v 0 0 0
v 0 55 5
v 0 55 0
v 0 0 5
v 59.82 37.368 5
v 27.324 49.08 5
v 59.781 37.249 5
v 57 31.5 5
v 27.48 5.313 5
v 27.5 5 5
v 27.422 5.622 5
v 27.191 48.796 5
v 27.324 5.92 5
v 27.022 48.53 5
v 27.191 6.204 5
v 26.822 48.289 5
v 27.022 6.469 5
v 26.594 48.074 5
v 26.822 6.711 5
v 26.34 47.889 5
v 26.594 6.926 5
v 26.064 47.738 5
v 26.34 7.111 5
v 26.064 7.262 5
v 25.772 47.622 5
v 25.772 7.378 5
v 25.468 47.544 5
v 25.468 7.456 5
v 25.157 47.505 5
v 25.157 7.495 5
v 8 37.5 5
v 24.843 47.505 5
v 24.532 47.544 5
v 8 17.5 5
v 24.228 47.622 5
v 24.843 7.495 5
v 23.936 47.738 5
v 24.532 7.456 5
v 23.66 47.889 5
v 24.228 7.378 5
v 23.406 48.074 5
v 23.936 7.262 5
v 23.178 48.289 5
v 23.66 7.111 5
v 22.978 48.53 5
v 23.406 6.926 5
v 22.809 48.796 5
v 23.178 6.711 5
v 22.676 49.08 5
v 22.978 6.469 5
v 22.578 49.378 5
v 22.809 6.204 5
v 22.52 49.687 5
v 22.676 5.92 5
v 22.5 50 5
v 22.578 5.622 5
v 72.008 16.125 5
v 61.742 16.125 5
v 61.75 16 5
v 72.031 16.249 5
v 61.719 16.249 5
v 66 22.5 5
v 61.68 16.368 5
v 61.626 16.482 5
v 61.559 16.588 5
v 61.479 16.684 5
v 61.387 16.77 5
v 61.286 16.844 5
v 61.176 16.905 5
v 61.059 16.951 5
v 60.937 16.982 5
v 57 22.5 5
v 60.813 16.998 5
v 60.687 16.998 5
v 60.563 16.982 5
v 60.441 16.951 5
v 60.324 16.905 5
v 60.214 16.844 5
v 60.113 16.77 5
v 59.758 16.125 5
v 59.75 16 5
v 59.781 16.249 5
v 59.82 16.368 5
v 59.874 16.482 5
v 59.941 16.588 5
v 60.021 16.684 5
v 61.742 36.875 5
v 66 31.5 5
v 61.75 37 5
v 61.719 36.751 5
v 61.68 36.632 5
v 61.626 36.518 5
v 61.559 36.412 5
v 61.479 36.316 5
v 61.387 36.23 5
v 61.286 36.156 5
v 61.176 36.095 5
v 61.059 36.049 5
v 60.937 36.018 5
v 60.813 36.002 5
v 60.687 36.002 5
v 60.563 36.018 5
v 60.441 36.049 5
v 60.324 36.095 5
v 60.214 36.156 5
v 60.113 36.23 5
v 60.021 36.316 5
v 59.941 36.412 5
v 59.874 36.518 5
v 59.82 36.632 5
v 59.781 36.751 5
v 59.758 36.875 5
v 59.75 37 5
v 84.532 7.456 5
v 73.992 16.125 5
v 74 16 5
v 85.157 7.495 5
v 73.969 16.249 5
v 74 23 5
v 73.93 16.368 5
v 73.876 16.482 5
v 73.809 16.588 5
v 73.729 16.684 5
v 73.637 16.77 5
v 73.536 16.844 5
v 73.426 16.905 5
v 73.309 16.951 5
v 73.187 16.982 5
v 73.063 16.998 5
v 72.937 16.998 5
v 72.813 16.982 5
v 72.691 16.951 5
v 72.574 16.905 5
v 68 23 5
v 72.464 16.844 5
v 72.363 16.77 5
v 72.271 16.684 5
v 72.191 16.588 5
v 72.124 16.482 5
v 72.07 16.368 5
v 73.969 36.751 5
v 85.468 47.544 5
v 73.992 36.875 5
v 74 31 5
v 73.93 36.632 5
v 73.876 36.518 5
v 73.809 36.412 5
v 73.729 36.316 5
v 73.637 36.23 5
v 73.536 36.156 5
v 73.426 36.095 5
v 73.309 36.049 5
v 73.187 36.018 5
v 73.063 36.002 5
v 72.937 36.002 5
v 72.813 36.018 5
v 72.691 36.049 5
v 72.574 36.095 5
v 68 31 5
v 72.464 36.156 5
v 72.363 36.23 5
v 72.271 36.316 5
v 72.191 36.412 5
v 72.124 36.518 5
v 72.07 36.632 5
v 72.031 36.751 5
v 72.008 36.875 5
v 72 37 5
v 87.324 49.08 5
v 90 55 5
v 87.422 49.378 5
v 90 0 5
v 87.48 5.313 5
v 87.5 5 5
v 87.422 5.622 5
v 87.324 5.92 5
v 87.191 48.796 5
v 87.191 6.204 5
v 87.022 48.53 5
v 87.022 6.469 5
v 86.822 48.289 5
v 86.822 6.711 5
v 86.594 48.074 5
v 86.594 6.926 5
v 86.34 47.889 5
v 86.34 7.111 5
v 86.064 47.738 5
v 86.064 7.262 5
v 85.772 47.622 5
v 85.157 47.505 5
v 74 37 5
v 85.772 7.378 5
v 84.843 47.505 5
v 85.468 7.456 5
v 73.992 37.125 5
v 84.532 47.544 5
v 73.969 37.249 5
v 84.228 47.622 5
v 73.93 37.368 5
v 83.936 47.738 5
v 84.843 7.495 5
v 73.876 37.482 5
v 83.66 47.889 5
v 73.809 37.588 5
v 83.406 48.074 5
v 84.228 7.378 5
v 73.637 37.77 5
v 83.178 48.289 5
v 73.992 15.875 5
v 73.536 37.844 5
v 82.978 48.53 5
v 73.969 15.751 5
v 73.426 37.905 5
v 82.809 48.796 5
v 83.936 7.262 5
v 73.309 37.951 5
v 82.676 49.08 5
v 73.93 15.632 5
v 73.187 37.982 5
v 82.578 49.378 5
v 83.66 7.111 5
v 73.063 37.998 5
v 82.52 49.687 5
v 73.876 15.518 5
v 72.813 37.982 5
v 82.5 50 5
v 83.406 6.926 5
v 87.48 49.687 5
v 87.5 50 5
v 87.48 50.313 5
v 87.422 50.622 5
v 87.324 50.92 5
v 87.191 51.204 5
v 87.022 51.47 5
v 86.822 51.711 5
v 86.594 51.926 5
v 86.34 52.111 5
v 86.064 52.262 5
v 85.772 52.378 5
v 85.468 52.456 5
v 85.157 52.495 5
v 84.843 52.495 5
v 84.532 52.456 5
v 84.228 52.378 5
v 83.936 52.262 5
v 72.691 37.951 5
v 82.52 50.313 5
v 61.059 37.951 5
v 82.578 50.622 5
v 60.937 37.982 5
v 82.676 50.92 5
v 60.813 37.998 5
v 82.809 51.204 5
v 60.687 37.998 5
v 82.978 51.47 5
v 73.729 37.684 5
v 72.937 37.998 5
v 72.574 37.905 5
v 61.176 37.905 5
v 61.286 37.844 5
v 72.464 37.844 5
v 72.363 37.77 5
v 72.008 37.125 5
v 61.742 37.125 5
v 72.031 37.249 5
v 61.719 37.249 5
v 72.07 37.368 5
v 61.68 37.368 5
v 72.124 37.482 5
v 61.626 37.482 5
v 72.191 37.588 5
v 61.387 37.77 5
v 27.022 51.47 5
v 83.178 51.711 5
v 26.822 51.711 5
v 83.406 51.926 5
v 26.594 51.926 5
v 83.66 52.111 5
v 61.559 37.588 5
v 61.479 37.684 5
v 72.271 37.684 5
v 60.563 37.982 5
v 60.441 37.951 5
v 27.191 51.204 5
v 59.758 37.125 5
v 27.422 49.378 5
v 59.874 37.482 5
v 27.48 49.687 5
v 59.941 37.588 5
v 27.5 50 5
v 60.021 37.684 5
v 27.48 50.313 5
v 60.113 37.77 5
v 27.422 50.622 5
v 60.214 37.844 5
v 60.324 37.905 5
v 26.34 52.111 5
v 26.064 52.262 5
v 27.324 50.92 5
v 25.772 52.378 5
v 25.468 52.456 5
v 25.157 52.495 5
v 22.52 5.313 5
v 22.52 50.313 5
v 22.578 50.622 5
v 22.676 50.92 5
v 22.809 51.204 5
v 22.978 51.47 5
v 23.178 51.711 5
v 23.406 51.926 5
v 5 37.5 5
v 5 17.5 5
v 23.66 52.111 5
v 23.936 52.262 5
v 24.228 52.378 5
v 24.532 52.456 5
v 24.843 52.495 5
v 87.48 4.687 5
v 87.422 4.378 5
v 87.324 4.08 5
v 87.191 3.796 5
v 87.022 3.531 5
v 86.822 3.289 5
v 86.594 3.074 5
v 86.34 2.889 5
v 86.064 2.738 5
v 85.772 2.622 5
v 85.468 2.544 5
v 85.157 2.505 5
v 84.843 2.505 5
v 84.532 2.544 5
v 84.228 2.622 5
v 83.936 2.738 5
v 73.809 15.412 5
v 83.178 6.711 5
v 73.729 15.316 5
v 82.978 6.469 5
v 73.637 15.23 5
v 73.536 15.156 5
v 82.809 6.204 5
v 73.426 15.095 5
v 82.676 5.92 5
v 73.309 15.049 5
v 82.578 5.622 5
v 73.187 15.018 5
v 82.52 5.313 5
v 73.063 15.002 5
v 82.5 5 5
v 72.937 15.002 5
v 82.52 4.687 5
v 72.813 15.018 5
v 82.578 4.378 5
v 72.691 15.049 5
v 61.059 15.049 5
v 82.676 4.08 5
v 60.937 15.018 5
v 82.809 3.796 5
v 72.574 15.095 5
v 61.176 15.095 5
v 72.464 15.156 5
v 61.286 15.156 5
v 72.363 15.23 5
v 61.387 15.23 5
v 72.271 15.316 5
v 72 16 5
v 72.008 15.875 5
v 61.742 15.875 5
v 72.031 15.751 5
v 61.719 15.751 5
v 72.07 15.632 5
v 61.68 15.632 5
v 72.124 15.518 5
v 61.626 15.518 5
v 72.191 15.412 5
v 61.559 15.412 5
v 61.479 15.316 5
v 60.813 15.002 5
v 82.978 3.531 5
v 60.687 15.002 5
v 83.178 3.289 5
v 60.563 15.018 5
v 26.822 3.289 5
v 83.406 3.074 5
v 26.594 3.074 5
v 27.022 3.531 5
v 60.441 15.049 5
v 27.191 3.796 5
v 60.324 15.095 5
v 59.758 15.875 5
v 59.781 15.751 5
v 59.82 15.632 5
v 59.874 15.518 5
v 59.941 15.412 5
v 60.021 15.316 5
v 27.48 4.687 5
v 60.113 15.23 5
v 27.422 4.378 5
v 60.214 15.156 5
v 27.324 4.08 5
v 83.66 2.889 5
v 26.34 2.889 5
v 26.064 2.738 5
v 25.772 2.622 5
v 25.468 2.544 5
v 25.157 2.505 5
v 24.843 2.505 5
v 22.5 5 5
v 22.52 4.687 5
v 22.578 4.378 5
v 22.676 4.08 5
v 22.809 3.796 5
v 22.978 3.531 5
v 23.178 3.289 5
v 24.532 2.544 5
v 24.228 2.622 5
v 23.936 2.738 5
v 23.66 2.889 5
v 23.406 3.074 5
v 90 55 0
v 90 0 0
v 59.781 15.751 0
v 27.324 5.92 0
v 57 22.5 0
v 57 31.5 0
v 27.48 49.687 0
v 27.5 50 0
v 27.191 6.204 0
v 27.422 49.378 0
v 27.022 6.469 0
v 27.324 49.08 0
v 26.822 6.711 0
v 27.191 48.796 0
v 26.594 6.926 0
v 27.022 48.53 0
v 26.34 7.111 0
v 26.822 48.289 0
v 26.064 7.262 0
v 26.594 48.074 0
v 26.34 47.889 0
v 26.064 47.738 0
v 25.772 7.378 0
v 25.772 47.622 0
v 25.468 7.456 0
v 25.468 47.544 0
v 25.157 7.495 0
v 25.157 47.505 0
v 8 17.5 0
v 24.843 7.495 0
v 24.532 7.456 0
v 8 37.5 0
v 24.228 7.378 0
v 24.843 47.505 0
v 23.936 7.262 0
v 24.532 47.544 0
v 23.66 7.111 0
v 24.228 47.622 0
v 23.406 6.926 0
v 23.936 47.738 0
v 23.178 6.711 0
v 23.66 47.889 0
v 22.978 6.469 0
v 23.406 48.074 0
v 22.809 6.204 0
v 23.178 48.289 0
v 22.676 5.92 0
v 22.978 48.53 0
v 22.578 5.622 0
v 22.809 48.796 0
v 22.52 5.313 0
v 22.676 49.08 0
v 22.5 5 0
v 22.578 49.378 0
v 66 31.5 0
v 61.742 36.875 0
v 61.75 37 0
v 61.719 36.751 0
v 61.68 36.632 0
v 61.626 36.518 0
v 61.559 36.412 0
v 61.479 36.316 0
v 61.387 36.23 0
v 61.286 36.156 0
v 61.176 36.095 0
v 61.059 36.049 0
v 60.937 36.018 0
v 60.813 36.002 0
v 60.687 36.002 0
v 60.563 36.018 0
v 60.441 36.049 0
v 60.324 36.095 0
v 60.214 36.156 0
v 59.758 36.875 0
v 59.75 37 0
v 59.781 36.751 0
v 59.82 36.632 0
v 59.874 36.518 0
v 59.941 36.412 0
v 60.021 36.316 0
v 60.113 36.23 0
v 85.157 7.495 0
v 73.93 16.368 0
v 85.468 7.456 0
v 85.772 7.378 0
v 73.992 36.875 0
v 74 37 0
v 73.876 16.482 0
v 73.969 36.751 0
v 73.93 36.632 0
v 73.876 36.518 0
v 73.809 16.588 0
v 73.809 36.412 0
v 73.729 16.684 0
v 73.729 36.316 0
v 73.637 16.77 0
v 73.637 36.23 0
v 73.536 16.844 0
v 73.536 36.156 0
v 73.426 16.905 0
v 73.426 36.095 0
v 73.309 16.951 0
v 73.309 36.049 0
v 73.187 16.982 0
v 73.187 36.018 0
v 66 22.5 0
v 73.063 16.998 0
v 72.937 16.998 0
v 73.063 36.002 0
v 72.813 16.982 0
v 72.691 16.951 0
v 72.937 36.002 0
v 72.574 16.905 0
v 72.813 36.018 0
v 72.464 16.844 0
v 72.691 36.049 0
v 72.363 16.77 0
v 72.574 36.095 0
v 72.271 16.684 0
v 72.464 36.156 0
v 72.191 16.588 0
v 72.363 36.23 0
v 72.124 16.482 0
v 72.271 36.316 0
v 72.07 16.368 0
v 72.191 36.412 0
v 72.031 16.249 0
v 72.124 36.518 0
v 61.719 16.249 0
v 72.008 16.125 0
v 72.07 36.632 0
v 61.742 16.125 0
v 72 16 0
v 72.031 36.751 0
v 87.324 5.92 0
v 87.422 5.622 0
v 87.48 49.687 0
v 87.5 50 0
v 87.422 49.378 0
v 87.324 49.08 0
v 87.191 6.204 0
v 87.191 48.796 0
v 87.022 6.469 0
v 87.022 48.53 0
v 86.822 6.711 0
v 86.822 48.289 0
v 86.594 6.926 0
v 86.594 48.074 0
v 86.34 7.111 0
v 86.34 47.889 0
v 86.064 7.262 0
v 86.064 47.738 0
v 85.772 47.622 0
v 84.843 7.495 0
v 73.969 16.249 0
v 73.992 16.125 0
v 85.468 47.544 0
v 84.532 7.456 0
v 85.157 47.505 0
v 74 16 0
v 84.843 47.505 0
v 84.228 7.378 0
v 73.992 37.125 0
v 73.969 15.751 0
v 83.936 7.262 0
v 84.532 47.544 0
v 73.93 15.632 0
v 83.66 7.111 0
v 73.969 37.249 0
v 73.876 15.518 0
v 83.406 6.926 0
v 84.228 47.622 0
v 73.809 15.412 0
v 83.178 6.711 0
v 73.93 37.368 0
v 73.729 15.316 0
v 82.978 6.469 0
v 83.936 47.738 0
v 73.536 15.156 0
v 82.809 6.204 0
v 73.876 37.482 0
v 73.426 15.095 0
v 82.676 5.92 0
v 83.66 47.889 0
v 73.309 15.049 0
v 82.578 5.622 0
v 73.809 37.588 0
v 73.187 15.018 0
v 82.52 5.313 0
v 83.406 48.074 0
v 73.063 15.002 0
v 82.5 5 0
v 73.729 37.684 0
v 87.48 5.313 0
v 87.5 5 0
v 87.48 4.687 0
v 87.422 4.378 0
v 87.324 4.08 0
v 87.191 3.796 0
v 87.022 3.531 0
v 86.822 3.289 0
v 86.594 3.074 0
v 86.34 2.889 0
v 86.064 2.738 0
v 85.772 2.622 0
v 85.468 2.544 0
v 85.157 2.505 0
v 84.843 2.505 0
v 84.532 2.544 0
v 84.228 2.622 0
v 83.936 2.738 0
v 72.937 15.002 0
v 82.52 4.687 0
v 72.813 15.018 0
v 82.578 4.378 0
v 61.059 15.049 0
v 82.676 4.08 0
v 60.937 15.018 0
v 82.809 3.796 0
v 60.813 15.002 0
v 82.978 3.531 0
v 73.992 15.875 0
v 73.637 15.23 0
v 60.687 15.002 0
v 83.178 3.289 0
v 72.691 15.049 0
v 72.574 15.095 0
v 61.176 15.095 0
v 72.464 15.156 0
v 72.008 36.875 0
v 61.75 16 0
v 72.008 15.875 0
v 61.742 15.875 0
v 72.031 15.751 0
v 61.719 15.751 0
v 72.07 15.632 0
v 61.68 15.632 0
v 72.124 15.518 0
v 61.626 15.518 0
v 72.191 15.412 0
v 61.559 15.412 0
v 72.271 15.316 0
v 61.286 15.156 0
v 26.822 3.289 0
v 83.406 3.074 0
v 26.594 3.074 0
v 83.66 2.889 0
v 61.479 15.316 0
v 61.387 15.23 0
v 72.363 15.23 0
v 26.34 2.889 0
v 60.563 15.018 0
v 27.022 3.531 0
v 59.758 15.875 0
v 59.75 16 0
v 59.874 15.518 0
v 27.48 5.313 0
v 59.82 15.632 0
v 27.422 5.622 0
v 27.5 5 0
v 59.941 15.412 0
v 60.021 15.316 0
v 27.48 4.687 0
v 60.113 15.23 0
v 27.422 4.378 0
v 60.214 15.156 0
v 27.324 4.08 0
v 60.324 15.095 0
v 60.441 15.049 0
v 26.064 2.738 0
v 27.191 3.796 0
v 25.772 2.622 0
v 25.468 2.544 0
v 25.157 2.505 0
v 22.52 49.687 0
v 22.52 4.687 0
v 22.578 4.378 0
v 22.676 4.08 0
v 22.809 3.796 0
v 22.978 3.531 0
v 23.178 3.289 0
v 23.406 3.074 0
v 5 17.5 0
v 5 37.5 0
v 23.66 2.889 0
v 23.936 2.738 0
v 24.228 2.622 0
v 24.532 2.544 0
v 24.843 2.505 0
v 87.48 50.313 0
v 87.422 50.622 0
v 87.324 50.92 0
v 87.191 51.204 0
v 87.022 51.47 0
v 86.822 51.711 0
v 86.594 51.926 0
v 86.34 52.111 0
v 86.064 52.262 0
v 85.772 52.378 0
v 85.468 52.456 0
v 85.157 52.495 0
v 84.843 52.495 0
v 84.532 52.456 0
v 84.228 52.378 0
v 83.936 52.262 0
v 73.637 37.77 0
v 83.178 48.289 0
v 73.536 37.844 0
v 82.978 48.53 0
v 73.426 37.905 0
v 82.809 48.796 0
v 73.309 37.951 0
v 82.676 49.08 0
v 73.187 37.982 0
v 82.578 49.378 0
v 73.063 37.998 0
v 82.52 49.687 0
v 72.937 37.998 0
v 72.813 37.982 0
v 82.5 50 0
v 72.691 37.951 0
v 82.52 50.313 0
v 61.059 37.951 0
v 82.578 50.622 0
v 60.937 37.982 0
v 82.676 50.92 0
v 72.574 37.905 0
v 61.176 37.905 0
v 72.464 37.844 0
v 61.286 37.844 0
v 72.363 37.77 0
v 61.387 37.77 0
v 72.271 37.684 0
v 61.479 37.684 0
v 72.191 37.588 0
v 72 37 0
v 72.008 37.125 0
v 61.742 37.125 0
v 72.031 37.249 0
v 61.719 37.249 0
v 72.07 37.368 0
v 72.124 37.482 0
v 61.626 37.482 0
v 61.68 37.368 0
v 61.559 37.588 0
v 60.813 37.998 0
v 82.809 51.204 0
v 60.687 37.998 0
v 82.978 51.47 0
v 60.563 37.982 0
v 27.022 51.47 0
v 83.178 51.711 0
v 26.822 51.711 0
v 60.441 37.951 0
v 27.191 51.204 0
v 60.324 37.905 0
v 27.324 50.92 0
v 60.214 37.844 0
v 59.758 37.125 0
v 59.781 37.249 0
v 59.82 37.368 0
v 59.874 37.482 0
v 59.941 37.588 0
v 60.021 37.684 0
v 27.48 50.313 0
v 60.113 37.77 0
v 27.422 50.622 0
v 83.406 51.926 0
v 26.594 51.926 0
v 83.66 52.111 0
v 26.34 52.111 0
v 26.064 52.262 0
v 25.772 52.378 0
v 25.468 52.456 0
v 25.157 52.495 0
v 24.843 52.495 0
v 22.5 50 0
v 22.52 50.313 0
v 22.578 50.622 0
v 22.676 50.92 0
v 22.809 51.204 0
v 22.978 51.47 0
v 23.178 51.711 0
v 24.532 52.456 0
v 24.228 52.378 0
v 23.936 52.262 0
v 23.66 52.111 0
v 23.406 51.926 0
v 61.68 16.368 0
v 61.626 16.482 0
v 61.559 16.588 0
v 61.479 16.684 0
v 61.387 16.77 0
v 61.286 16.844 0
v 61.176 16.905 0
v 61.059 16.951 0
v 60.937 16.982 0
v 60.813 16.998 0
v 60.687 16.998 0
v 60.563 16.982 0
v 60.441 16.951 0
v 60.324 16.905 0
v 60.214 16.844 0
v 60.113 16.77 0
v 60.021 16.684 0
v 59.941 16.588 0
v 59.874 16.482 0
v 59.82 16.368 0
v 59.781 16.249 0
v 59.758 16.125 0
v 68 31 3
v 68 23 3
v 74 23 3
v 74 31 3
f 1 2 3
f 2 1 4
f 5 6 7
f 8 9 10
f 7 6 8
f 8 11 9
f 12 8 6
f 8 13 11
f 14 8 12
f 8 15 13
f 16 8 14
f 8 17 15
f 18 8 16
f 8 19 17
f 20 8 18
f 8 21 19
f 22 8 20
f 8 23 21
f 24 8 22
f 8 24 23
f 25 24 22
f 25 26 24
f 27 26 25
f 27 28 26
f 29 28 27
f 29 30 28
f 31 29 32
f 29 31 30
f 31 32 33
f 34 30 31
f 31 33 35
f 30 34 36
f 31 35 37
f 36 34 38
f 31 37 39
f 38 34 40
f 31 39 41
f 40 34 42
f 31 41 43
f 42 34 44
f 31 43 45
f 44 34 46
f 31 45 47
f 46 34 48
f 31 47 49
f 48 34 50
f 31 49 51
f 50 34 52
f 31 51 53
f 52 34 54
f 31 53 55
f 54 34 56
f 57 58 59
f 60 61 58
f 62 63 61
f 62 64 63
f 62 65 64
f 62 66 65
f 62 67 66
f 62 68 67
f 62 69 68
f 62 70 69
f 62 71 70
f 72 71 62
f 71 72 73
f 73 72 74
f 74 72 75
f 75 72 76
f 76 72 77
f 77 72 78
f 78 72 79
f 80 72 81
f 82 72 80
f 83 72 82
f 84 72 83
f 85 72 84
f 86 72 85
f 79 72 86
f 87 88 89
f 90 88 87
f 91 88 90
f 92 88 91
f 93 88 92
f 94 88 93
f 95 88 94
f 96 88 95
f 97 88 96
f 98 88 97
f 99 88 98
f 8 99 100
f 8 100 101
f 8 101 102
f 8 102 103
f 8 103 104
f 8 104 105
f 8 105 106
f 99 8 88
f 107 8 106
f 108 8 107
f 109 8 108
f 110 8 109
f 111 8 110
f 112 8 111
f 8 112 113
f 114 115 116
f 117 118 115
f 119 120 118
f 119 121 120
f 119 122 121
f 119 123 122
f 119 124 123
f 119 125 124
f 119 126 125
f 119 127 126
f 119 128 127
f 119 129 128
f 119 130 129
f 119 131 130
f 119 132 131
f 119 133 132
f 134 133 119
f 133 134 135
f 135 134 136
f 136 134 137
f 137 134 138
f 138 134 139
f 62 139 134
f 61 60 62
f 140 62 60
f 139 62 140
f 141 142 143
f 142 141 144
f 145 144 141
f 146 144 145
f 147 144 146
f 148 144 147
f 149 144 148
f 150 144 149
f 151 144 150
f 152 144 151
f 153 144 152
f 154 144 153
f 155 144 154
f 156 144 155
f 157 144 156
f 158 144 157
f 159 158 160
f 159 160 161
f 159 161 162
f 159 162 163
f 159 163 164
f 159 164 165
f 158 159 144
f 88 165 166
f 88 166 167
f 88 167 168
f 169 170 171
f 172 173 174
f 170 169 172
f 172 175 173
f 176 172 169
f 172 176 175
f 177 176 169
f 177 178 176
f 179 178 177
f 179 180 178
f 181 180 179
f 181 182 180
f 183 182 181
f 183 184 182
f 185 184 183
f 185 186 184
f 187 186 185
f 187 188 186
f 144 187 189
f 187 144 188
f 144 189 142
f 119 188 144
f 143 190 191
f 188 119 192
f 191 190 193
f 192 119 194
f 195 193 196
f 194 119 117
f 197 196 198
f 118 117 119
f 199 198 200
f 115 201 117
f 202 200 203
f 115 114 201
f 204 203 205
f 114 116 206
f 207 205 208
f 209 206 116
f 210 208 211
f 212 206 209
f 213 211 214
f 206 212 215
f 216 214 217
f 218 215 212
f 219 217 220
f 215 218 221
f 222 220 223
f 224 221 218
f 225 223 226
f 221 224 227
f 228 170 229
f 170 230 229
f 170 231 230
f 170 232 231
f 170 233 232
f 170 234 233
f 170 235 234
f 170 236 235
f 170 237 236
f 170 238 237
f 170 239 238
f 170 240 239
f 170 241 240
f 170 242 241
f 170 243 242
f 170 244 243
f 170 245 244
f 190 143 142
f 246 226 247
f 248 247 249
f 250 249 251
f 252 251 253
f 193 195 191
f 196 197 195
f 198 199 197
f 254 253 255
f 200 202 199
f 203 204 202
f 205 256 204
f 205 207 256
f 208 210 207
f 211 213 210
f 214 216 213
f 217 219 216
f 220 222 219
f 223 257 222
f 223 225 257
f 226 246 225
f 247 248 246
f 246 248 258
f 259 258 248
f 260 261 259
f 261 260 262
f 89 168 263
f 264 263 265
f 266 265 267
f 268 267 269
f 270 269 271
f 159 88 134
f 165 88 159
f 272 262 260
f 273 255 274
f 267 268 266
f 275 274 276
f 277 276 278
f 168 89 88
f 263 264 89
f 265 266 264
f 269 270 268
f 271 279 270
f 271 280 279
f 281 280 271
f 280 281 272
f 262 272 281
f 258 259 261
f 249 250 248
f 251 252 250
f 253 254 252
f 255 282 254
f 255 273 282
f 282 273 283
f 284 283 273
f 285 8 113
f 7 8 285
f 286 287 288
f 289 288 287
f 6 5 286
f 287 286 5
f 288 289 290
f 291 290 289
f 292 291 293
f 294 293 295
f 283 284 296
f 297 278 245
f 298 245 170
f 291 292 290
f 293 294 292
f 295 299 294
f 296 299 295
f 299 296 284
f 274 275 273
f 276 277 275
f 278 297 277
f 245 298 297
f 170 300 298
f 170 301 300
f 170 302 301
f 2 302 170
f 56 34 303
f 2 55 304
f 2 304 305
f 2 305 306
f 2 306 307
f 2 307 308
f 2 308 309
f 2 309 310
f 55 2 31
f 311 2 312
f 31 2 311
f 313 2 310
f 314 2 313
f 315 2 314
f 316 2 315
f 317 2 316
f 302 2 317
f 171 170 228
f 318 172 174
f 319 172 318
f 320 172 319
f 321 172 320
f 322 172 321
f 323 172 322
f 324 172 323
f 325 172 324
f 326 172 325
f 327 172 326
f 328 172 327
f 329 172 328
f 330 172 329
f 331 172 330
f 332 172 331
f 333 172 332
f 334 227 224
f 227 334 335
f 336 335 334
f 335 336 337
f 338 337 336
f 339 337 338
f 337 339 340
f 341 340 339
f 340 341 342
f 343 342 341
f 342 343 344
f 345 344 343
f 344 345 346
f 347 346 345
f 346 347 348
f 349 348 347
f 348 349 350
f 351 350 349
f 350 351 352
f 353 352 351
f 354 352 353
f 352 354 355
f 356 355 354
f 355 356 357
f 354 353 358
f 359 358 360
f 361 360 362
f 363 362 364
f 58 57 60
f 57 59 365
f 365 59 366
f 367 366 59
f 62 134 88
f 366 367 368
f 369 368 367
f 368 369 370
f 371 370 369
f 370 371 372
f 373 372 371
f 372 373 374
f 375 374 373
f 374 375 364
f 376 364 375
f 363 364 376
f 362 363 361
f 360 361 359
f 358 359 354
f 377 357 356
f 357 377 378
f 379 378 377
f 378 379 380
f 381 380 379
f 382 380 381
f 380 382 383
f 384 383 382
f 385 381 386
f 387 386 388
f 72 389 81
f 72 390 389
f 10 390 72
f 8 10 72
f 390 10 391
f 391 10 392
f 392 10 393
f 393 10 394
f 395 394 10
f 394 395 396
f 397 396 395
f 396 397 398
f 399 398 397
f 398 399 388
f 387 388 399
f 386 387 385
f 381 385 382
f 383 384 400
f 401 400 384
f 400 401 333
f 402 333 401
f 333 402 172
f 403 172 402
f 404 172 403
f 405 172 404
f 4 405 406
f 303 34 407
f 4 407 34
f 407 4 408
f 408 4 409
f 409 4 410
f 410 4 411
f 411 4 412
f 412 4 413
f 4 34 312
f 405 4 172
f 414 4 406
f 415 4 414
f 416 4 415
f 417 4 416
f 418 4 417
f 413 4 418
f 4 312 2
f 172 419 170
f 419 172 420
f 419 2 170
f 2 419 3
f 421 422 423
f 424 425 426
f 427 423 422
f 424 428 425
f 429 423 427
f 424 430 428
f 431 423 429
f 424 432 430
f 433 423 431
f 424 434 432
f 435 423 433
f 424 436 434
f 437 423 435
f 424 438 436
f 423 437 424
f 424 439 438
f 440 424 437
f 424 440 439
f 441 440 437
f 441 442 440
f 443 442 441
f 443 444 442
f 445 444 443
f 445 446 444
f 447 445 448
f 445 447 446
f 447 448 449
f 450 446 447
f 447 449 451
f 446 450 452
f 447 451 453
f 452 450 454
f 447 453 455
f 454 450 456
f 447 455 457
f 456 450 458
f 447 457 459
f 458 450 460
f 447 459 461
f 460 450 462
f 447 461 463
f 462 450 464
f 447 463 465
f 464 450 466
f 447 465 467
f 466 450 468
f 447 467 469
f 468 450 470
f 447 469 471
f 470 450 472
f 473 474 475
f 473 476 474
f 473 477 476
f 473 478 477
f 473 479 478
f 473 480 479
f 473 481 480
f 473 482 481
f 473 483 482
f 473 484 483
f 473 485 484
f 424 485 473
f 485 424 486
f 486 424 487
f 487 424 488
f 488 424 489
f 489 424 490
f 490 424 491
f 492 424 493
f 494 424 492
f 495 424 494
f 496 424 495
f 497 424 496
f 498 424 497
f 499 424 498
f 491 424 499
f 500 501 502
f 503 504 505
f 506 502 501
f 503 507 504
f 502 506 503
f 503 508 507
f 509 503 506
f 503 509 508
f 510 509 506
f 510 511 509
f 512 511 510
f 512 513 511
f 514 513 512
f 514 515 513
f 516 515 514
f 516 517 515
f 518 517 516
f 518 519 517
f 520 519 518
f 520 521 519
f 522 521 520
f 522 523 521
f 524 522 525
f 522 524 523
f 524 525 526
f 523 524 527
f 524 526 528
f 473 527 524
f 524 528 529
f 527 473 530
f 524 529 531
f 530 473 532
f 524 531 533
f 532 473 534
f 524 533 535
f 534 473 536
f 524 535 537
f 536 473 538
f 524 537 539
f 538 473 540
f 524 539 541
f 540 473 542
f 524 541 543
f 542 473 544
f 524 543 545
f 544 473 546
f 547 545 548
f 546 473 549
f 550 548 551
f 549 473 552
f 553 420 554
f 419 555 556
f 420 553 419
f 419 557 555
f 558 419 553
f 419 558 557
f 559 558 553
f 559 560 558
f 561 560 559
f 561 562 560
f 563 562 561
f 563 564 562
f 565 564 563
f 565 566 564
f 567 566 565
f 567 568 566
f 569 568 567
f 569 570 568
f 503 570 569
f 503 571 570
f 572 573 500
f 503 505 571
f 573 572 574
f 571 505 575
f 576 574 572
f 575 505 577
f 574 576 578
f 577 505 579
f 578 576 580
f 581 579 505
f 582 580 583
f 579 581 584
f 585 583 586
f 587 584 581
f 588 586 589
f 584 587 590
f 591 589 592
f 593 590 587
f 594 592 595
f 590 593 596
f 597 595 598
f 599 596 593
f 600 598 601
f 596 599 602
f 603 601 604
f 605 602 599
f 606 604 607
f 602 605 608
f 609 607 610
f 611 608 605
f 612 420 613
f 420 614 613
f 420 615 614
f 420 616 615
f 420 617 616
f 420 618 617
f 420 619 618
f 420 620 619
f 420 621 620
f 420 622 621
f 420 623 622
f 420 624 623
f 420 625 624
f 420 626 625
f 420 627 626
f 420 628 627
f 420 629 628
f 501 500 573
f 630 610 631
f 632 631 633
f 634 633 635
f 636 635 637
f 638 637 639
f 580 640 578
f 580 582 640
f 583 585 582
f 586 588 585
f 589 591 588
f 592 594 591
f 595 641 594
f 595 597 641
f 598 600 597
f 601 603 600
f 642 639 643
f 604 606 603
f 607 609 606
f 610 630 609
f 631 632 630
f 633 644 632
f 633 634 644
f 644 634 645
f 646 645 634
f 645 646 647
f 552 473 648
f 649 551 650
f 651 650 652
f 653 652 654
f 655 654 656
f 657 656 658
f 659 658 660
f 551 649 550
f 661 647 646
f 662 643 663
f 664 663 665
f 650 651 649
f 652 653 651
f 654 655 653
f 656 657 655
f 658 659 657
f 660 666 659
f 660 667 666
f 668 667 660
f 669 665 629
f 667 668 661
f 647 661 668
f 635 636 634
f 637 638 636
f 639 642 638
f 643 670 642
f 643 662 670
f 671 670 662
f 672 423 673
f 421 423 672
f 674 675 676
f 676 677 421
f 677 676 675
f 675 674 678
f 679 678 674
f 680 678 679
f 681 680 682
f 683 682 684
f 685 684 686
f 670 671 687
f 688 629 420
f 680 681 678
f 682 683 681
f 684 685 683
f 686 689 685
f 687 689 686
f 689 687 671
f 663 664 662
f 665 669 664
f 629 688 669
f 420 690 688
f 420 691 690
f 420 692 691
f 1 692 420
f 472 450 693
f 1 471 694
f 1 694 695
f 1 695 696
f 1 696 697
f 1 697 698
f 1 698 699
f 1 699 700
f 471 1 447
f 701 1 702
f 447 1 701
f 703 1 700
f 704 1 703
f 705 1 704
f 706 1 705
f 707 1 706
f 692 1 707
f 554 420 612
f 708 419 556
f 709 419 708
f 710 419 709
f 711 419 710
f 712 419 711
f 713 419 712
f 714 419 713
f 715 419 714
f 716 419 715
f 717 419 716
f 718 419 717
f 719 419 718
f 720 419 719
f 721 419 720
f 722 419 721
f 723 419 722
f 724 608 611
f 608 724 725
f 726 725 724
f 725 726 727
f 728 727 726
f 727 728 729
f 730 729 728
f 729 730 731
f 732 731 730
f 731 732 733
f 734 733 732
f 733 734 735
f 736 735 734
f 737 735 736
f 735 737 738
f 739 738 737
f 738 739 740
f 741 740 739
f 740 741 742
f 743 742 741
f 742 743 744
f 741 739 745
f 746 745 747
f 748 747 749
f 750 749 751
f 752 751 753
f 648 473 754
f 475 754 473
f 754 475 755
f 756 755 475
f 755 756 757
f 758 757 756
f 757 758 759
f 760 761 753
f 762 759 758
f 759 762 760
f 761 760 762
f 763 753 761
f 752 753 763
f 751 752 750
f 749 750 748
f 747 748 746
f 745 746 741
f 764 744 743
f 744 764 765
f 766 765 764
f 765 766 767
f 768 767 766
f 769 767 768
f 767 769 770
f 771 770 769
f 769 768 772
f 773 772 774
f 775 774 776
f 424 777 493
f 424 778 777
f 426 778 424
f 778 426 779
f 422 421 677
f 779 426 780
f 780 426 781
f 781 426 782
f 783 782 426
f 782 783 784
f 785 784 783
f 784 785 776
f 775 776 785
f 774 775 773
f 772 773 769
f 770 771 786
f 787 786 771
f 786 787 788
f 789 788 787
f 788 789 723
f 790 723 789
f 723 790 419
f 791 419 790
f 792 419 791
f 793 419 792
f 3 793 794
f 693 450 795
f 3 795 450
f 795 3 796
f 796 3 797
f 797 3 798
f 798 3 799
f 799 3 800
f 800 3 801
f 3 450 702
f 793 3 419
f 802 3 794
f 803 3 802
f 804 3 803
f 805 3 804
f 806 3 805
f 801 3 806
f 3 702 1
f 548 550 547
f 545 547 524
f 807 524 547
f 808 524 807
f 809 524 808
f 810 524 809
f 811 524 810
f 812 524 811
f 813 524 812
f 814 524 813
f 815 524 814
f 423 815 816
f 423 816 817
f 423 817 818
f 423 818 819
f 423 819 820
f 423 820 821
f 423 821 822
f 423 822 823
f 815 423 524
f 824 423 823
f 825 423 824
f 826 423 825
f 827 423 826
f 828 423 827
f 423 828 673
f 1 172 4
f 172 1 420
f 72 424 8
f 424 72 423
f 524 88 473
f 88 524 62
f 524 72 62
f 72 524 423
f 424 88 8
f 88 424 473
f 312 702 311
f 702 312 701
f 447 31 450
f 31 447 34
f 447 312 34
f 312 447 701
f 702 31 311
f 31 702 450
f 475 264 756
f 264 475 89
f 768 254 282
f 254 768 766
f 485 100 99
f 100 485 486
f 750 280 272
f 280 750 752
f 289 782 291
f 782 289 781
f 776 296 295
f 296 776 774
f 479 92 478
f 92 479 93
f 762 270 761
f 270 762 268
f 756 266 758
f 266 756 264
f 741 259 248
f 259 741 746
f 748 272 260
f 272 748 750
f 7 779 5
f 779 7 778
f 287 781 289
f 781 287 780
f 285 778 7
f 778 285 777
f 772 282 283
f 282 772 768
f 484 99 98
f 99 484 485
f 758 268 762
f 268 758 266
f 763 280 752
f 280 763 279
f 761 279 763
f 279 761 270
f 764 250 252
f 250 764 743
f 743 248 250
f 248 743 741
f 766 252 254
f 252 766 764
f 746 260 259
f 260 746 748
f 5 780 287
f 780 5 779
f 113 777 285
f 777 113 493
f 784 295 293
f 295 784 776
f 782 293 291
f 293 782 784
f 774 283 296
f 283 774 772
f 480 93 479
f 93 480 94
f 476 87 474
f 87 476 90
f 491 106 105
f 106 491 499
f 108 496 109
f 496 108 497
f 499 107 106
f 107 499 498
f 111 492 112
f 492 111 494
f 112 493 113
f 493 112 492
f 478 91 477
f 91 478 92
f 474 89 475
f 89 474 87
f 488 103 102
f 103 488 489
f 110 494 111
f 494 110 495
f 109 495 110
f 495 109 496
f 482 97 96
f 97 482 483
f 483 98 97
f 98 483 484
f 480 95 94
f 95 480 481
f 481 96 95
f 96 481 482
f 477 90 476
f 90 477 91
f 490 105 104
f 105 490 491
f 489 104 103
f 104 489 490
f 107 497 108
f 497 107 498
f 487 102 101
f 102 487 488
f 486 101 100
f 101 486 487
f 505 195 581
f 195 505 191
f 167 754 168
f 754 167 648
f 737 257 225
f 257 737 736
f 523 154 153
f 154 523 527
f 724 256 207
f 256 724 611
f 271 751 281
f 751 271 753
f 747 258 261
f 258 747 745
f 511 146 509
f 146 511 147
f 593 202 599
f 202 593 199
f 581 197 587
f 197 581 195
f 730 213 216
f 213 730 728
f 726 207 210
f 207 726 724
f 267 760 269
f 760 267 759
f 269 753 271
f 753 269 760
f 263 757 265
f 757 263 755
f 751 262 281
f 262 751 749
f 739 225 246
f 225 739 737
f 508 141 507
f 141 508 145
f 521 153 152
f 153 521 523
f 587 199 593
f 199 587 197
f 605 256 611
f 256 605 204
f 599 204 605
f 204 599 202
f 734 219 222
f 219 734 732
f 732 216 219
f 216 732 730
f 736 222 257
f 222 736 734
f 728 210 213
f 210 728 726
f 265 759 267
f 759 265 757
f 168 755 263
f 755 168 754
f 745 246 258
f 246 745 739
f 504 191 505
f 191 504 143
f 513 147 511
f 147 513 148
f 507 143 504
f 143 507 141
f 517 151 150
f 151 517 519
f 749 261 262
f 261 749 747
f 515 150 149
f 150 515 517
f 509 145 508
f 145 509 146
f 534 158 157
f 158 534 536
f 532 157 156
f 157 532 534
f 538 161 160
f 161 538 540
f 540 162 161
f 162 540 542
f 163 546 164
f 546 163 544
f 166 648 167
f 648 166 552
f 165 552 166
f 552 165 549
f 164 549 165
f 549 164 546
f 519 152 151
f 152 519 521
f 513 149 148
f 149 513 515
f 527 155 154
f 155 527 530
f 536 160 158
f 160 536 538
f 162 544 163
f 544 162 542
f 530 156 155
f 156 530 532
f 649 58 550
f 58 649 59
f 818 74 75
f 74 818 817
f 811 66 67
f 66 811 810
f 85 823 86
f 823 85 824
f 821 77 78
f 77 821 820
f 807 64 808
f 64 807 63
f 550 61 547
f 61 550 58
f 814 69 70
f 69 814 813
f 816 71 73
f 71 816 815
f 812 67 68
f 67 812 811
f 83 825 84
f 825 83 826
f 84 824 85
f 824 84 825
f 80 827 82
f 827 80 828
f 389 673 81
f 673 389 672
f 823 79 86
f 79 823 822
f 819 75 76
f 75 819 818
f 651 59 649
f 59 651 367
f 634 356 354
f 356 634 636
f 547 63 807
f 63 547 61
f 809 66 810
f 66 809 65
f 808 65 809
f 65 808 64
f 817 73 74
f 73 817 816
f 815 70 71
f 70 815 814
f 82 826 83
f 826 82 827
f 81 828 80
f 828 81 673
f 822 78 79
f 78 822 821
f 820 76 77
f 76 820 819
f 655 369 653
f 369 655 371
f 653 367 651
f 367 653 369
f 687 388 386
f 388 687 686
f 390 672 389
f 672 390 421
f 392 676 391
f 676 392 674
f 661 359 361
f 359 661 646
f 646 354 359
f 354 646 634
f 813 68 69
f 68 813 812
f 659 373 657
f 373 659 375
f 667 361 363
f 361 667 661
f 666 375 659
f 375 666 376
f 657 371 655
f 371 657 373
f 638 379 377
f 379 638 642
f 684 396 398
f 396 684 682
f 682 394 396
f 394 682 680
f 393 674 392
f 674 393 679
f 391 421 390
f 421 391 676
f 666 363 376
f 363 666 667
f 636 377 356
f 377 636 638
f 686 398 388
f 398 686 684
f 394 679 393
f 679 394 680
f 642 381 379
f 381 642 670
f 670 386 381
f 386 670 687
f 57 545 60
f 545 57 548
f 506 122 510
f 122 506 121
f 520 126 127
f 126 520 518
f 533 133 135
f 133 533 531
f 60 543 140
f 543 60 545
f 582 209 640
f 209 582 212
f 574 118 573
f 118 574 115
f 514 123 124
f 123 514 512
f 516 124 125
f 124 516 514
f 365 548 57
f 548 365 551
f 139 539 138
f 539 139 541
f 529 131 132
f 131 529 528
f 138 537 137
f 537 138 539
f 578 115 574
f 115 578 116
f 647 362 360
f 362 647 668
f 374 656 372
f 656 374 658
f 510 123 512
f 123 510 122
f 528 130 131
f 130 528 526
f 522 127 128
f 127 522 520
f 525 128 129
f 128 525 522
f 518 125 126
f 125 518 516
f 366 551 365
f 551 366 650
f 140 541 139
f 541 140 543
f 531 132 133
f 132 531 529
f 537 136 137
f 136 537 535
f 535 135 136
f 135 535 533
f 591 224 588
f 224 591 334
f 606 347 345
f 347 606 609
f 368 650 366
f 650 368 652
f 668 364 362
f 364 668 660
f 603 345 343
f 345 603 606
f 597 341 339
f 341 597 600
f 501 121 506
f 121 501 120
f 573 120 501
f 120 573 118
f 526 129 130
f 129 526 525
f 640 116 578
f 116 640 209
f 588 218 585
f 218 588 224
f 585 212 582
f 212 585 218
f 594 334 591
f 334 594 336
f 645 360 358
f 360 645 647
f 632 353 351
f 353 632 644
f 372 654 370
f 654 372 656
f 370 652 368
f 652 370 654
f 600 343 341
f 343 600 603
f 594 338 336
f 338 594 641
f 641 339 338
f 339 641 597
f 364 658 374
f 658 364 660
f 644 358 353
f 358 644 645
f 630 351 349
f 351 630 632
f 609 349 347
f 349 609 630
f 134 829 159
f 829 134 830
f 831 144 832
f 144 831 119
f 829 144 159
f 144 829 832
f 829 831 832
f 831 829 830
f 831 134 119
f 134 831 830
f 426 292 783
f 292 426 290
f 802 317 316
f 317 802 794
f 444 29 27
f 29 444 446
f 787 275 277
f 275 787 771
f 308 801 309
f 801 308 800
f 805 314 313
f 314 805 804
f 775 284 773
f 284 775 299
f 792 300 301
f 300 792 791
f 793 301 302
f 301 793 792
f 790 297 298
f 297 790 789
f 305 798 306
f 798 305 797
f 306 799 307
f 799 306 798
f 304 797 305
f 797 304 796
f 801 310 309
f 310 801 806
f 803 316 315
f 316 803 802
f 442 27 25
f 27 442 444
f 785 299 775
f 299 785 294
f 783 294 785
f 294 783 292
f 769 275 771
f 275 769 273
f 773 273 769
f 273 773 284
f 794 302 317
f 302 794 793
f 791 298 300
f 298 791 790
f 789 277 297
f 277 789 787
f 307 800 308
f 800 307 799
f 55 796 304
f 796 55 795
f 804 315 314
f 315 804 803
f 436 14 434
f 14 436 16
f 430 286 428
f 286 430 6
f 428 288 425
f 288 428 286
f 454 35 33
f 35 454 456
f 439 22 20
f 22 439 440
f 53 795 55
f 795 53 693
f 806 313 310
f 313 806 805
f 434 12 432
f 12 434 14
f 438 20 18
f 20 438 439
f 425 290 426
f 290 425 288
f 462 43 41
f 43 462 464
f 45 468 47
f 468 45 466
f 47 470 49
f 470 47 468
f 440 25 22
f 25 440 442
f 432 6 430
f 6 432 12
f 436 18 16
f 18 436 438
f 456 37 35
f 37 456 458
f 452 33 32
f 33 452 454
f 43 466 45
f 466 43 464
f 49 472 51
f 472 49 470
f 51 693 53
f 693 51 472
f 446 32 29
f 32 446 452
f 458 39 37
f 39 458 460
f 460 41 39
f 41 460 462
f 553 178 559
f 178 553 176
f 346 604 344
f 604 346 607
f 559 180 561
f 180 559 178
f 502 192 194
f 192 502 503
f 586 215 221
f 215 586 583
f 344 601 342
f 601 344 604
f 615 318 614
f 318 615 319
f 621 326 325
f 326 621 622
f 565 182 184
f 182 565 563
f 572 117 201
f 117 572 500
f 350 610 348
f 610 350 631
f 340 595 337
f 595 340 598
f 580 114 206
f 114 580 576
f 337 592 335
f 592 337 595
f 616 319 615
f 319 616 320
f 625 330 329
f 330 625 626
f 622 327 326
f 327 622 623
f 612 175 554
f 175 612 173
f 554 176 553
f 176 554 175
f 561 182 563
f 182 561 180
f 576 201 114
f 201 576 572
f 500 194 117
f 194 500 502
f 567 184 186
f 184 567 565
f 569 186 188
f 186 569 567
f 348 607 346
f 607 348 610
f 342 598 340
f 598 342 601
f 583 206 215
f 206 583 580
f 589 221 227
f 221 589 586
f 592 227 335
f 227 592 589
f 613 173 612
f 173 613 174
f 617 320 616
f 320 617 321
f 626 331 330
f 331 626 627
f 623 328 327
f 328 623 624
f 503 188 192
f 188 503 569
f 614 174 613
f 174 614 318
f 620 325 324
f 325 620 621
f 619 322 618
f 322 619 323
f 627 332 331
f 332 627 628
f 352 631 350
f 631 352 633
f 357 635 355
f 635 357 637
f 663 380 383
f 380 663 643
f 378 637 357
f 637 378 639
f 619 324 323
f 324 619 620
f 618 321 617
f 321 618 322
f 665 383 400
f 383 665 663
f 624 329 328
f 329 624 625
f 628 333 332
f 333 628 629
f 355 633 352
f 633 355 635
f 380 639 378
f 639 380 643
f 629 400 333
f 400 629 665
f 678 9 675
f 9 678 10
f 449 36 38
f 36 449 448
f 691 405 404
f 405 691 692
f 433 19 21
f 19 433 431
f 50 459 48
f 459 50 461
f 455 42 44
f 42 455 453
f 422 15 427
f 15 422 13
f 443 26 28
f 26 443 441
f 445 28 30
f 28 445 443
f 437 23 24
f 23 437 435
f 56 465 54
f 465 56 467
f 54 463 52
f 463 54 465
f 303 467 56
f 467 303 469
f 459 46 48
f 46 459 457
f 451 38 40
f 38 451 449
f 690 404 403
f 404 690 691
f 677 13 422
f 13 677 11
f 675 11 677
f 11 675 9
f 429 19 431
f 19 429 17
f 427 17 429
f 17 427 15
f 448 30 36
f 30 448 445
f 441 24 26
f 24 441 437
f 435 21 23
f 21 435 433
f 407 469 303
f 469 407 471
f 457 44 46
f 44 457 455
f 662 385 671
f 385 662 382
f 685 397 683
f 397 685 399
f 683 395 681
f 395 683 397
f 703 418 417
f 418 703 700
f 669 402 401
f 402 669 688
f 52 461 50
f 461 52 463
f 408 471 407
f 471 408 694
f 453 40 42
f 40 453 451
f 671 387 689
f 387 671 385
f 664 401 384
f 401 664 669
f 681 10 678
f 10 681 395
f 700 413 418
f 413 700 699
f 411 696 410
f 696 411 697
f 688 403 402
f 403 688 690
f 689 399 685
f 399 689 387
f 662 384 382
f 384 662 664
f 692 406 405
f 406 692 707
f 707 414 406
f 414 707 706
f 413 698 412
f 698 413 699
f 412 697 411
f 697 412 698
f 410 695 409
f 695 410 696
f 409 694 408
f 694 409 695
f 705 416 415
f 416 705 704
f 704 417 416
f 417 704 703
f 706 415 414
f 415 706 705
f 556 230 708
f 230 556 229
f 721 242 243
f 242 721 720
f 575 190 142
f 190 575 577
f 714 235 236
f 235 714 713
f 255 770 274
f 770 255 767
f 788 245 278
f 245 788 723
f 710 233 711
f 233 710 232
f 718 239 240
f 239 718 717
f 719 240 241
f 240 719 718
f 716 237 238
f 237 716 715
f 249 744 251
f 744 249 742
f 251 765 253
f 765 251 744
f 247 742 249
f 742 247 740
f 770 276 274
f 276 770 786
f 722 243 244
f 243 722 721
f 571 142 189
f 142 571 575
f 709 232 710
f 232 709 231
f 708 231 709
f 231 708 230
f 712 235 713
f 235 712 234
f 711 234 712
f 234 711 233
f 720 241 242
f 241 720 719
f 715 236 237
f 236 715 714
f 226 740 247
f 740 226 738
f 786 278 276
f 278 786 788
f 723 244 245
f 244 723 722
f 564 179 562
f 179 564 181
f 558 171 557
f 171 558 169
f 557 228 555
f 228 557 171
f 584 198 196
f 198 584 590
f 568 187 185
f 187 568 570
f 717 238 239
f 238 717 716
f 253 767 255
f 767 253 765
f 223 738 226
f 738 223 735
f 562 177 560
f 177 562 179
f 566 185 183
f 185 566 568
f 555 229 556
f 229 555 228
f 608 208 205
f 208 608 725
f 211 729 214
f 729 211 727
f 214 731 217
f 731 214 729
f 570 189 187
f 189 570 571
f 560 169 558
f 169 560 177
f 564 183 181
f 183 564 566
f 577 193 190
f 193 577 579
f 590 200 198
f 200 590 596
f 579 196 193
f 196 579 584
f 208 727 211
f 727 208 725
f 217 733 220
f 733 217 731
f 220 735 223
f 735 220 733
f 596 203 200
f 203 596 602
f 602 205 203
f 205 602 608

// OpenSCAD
// Pi camera
difference() {
    // Bottom 
    cube([90,55,5]);
    
    // camera lens hole
    translate([57,22.5,0]) {
        color([1,0,1]) cube([9,9,9]);
    }
    
     // Slot for Pi Camera ribbon cable
    translate([5, 17.5, -1]) {
        color([1,0,1])
        cube([3,20,8]);  
    }
    
    // camera mounting holes top
    translate([60.75,37,-1]) {cylinder(h=6, d=2,
    $fn=50);
    }
    translate([73,37,-1]) {cylinder(h=6, d=2,
    $fn=50);
    }
    // camera mounting holes bottom
    translate([60.75,16,-1]) {cylinder(h=6, d=2,
    $fn=50);
    }
    translate([73,16,-1]) {cylinder(h=6, d=2,
    $fn=50);
    }
    
    // Camera CPU indent
    translate([68,23,3]) {
    color([1,0,0]) cube([6,8,3]);
    }
    
    // Guide holes in each corner
    translate([25,50,-1]) cylinder(h=6, d=5,
    $fn=50);
    translate([85,5,-1]) cylinder(h=6, d=5,
    $fn=50);
    translate([25,5,-1]) cylinder(h=6, d=5,
    $fn=50);
    translate([85,50,-1]) cylinder(h=6, d=5,
    $fn=50); 
}
